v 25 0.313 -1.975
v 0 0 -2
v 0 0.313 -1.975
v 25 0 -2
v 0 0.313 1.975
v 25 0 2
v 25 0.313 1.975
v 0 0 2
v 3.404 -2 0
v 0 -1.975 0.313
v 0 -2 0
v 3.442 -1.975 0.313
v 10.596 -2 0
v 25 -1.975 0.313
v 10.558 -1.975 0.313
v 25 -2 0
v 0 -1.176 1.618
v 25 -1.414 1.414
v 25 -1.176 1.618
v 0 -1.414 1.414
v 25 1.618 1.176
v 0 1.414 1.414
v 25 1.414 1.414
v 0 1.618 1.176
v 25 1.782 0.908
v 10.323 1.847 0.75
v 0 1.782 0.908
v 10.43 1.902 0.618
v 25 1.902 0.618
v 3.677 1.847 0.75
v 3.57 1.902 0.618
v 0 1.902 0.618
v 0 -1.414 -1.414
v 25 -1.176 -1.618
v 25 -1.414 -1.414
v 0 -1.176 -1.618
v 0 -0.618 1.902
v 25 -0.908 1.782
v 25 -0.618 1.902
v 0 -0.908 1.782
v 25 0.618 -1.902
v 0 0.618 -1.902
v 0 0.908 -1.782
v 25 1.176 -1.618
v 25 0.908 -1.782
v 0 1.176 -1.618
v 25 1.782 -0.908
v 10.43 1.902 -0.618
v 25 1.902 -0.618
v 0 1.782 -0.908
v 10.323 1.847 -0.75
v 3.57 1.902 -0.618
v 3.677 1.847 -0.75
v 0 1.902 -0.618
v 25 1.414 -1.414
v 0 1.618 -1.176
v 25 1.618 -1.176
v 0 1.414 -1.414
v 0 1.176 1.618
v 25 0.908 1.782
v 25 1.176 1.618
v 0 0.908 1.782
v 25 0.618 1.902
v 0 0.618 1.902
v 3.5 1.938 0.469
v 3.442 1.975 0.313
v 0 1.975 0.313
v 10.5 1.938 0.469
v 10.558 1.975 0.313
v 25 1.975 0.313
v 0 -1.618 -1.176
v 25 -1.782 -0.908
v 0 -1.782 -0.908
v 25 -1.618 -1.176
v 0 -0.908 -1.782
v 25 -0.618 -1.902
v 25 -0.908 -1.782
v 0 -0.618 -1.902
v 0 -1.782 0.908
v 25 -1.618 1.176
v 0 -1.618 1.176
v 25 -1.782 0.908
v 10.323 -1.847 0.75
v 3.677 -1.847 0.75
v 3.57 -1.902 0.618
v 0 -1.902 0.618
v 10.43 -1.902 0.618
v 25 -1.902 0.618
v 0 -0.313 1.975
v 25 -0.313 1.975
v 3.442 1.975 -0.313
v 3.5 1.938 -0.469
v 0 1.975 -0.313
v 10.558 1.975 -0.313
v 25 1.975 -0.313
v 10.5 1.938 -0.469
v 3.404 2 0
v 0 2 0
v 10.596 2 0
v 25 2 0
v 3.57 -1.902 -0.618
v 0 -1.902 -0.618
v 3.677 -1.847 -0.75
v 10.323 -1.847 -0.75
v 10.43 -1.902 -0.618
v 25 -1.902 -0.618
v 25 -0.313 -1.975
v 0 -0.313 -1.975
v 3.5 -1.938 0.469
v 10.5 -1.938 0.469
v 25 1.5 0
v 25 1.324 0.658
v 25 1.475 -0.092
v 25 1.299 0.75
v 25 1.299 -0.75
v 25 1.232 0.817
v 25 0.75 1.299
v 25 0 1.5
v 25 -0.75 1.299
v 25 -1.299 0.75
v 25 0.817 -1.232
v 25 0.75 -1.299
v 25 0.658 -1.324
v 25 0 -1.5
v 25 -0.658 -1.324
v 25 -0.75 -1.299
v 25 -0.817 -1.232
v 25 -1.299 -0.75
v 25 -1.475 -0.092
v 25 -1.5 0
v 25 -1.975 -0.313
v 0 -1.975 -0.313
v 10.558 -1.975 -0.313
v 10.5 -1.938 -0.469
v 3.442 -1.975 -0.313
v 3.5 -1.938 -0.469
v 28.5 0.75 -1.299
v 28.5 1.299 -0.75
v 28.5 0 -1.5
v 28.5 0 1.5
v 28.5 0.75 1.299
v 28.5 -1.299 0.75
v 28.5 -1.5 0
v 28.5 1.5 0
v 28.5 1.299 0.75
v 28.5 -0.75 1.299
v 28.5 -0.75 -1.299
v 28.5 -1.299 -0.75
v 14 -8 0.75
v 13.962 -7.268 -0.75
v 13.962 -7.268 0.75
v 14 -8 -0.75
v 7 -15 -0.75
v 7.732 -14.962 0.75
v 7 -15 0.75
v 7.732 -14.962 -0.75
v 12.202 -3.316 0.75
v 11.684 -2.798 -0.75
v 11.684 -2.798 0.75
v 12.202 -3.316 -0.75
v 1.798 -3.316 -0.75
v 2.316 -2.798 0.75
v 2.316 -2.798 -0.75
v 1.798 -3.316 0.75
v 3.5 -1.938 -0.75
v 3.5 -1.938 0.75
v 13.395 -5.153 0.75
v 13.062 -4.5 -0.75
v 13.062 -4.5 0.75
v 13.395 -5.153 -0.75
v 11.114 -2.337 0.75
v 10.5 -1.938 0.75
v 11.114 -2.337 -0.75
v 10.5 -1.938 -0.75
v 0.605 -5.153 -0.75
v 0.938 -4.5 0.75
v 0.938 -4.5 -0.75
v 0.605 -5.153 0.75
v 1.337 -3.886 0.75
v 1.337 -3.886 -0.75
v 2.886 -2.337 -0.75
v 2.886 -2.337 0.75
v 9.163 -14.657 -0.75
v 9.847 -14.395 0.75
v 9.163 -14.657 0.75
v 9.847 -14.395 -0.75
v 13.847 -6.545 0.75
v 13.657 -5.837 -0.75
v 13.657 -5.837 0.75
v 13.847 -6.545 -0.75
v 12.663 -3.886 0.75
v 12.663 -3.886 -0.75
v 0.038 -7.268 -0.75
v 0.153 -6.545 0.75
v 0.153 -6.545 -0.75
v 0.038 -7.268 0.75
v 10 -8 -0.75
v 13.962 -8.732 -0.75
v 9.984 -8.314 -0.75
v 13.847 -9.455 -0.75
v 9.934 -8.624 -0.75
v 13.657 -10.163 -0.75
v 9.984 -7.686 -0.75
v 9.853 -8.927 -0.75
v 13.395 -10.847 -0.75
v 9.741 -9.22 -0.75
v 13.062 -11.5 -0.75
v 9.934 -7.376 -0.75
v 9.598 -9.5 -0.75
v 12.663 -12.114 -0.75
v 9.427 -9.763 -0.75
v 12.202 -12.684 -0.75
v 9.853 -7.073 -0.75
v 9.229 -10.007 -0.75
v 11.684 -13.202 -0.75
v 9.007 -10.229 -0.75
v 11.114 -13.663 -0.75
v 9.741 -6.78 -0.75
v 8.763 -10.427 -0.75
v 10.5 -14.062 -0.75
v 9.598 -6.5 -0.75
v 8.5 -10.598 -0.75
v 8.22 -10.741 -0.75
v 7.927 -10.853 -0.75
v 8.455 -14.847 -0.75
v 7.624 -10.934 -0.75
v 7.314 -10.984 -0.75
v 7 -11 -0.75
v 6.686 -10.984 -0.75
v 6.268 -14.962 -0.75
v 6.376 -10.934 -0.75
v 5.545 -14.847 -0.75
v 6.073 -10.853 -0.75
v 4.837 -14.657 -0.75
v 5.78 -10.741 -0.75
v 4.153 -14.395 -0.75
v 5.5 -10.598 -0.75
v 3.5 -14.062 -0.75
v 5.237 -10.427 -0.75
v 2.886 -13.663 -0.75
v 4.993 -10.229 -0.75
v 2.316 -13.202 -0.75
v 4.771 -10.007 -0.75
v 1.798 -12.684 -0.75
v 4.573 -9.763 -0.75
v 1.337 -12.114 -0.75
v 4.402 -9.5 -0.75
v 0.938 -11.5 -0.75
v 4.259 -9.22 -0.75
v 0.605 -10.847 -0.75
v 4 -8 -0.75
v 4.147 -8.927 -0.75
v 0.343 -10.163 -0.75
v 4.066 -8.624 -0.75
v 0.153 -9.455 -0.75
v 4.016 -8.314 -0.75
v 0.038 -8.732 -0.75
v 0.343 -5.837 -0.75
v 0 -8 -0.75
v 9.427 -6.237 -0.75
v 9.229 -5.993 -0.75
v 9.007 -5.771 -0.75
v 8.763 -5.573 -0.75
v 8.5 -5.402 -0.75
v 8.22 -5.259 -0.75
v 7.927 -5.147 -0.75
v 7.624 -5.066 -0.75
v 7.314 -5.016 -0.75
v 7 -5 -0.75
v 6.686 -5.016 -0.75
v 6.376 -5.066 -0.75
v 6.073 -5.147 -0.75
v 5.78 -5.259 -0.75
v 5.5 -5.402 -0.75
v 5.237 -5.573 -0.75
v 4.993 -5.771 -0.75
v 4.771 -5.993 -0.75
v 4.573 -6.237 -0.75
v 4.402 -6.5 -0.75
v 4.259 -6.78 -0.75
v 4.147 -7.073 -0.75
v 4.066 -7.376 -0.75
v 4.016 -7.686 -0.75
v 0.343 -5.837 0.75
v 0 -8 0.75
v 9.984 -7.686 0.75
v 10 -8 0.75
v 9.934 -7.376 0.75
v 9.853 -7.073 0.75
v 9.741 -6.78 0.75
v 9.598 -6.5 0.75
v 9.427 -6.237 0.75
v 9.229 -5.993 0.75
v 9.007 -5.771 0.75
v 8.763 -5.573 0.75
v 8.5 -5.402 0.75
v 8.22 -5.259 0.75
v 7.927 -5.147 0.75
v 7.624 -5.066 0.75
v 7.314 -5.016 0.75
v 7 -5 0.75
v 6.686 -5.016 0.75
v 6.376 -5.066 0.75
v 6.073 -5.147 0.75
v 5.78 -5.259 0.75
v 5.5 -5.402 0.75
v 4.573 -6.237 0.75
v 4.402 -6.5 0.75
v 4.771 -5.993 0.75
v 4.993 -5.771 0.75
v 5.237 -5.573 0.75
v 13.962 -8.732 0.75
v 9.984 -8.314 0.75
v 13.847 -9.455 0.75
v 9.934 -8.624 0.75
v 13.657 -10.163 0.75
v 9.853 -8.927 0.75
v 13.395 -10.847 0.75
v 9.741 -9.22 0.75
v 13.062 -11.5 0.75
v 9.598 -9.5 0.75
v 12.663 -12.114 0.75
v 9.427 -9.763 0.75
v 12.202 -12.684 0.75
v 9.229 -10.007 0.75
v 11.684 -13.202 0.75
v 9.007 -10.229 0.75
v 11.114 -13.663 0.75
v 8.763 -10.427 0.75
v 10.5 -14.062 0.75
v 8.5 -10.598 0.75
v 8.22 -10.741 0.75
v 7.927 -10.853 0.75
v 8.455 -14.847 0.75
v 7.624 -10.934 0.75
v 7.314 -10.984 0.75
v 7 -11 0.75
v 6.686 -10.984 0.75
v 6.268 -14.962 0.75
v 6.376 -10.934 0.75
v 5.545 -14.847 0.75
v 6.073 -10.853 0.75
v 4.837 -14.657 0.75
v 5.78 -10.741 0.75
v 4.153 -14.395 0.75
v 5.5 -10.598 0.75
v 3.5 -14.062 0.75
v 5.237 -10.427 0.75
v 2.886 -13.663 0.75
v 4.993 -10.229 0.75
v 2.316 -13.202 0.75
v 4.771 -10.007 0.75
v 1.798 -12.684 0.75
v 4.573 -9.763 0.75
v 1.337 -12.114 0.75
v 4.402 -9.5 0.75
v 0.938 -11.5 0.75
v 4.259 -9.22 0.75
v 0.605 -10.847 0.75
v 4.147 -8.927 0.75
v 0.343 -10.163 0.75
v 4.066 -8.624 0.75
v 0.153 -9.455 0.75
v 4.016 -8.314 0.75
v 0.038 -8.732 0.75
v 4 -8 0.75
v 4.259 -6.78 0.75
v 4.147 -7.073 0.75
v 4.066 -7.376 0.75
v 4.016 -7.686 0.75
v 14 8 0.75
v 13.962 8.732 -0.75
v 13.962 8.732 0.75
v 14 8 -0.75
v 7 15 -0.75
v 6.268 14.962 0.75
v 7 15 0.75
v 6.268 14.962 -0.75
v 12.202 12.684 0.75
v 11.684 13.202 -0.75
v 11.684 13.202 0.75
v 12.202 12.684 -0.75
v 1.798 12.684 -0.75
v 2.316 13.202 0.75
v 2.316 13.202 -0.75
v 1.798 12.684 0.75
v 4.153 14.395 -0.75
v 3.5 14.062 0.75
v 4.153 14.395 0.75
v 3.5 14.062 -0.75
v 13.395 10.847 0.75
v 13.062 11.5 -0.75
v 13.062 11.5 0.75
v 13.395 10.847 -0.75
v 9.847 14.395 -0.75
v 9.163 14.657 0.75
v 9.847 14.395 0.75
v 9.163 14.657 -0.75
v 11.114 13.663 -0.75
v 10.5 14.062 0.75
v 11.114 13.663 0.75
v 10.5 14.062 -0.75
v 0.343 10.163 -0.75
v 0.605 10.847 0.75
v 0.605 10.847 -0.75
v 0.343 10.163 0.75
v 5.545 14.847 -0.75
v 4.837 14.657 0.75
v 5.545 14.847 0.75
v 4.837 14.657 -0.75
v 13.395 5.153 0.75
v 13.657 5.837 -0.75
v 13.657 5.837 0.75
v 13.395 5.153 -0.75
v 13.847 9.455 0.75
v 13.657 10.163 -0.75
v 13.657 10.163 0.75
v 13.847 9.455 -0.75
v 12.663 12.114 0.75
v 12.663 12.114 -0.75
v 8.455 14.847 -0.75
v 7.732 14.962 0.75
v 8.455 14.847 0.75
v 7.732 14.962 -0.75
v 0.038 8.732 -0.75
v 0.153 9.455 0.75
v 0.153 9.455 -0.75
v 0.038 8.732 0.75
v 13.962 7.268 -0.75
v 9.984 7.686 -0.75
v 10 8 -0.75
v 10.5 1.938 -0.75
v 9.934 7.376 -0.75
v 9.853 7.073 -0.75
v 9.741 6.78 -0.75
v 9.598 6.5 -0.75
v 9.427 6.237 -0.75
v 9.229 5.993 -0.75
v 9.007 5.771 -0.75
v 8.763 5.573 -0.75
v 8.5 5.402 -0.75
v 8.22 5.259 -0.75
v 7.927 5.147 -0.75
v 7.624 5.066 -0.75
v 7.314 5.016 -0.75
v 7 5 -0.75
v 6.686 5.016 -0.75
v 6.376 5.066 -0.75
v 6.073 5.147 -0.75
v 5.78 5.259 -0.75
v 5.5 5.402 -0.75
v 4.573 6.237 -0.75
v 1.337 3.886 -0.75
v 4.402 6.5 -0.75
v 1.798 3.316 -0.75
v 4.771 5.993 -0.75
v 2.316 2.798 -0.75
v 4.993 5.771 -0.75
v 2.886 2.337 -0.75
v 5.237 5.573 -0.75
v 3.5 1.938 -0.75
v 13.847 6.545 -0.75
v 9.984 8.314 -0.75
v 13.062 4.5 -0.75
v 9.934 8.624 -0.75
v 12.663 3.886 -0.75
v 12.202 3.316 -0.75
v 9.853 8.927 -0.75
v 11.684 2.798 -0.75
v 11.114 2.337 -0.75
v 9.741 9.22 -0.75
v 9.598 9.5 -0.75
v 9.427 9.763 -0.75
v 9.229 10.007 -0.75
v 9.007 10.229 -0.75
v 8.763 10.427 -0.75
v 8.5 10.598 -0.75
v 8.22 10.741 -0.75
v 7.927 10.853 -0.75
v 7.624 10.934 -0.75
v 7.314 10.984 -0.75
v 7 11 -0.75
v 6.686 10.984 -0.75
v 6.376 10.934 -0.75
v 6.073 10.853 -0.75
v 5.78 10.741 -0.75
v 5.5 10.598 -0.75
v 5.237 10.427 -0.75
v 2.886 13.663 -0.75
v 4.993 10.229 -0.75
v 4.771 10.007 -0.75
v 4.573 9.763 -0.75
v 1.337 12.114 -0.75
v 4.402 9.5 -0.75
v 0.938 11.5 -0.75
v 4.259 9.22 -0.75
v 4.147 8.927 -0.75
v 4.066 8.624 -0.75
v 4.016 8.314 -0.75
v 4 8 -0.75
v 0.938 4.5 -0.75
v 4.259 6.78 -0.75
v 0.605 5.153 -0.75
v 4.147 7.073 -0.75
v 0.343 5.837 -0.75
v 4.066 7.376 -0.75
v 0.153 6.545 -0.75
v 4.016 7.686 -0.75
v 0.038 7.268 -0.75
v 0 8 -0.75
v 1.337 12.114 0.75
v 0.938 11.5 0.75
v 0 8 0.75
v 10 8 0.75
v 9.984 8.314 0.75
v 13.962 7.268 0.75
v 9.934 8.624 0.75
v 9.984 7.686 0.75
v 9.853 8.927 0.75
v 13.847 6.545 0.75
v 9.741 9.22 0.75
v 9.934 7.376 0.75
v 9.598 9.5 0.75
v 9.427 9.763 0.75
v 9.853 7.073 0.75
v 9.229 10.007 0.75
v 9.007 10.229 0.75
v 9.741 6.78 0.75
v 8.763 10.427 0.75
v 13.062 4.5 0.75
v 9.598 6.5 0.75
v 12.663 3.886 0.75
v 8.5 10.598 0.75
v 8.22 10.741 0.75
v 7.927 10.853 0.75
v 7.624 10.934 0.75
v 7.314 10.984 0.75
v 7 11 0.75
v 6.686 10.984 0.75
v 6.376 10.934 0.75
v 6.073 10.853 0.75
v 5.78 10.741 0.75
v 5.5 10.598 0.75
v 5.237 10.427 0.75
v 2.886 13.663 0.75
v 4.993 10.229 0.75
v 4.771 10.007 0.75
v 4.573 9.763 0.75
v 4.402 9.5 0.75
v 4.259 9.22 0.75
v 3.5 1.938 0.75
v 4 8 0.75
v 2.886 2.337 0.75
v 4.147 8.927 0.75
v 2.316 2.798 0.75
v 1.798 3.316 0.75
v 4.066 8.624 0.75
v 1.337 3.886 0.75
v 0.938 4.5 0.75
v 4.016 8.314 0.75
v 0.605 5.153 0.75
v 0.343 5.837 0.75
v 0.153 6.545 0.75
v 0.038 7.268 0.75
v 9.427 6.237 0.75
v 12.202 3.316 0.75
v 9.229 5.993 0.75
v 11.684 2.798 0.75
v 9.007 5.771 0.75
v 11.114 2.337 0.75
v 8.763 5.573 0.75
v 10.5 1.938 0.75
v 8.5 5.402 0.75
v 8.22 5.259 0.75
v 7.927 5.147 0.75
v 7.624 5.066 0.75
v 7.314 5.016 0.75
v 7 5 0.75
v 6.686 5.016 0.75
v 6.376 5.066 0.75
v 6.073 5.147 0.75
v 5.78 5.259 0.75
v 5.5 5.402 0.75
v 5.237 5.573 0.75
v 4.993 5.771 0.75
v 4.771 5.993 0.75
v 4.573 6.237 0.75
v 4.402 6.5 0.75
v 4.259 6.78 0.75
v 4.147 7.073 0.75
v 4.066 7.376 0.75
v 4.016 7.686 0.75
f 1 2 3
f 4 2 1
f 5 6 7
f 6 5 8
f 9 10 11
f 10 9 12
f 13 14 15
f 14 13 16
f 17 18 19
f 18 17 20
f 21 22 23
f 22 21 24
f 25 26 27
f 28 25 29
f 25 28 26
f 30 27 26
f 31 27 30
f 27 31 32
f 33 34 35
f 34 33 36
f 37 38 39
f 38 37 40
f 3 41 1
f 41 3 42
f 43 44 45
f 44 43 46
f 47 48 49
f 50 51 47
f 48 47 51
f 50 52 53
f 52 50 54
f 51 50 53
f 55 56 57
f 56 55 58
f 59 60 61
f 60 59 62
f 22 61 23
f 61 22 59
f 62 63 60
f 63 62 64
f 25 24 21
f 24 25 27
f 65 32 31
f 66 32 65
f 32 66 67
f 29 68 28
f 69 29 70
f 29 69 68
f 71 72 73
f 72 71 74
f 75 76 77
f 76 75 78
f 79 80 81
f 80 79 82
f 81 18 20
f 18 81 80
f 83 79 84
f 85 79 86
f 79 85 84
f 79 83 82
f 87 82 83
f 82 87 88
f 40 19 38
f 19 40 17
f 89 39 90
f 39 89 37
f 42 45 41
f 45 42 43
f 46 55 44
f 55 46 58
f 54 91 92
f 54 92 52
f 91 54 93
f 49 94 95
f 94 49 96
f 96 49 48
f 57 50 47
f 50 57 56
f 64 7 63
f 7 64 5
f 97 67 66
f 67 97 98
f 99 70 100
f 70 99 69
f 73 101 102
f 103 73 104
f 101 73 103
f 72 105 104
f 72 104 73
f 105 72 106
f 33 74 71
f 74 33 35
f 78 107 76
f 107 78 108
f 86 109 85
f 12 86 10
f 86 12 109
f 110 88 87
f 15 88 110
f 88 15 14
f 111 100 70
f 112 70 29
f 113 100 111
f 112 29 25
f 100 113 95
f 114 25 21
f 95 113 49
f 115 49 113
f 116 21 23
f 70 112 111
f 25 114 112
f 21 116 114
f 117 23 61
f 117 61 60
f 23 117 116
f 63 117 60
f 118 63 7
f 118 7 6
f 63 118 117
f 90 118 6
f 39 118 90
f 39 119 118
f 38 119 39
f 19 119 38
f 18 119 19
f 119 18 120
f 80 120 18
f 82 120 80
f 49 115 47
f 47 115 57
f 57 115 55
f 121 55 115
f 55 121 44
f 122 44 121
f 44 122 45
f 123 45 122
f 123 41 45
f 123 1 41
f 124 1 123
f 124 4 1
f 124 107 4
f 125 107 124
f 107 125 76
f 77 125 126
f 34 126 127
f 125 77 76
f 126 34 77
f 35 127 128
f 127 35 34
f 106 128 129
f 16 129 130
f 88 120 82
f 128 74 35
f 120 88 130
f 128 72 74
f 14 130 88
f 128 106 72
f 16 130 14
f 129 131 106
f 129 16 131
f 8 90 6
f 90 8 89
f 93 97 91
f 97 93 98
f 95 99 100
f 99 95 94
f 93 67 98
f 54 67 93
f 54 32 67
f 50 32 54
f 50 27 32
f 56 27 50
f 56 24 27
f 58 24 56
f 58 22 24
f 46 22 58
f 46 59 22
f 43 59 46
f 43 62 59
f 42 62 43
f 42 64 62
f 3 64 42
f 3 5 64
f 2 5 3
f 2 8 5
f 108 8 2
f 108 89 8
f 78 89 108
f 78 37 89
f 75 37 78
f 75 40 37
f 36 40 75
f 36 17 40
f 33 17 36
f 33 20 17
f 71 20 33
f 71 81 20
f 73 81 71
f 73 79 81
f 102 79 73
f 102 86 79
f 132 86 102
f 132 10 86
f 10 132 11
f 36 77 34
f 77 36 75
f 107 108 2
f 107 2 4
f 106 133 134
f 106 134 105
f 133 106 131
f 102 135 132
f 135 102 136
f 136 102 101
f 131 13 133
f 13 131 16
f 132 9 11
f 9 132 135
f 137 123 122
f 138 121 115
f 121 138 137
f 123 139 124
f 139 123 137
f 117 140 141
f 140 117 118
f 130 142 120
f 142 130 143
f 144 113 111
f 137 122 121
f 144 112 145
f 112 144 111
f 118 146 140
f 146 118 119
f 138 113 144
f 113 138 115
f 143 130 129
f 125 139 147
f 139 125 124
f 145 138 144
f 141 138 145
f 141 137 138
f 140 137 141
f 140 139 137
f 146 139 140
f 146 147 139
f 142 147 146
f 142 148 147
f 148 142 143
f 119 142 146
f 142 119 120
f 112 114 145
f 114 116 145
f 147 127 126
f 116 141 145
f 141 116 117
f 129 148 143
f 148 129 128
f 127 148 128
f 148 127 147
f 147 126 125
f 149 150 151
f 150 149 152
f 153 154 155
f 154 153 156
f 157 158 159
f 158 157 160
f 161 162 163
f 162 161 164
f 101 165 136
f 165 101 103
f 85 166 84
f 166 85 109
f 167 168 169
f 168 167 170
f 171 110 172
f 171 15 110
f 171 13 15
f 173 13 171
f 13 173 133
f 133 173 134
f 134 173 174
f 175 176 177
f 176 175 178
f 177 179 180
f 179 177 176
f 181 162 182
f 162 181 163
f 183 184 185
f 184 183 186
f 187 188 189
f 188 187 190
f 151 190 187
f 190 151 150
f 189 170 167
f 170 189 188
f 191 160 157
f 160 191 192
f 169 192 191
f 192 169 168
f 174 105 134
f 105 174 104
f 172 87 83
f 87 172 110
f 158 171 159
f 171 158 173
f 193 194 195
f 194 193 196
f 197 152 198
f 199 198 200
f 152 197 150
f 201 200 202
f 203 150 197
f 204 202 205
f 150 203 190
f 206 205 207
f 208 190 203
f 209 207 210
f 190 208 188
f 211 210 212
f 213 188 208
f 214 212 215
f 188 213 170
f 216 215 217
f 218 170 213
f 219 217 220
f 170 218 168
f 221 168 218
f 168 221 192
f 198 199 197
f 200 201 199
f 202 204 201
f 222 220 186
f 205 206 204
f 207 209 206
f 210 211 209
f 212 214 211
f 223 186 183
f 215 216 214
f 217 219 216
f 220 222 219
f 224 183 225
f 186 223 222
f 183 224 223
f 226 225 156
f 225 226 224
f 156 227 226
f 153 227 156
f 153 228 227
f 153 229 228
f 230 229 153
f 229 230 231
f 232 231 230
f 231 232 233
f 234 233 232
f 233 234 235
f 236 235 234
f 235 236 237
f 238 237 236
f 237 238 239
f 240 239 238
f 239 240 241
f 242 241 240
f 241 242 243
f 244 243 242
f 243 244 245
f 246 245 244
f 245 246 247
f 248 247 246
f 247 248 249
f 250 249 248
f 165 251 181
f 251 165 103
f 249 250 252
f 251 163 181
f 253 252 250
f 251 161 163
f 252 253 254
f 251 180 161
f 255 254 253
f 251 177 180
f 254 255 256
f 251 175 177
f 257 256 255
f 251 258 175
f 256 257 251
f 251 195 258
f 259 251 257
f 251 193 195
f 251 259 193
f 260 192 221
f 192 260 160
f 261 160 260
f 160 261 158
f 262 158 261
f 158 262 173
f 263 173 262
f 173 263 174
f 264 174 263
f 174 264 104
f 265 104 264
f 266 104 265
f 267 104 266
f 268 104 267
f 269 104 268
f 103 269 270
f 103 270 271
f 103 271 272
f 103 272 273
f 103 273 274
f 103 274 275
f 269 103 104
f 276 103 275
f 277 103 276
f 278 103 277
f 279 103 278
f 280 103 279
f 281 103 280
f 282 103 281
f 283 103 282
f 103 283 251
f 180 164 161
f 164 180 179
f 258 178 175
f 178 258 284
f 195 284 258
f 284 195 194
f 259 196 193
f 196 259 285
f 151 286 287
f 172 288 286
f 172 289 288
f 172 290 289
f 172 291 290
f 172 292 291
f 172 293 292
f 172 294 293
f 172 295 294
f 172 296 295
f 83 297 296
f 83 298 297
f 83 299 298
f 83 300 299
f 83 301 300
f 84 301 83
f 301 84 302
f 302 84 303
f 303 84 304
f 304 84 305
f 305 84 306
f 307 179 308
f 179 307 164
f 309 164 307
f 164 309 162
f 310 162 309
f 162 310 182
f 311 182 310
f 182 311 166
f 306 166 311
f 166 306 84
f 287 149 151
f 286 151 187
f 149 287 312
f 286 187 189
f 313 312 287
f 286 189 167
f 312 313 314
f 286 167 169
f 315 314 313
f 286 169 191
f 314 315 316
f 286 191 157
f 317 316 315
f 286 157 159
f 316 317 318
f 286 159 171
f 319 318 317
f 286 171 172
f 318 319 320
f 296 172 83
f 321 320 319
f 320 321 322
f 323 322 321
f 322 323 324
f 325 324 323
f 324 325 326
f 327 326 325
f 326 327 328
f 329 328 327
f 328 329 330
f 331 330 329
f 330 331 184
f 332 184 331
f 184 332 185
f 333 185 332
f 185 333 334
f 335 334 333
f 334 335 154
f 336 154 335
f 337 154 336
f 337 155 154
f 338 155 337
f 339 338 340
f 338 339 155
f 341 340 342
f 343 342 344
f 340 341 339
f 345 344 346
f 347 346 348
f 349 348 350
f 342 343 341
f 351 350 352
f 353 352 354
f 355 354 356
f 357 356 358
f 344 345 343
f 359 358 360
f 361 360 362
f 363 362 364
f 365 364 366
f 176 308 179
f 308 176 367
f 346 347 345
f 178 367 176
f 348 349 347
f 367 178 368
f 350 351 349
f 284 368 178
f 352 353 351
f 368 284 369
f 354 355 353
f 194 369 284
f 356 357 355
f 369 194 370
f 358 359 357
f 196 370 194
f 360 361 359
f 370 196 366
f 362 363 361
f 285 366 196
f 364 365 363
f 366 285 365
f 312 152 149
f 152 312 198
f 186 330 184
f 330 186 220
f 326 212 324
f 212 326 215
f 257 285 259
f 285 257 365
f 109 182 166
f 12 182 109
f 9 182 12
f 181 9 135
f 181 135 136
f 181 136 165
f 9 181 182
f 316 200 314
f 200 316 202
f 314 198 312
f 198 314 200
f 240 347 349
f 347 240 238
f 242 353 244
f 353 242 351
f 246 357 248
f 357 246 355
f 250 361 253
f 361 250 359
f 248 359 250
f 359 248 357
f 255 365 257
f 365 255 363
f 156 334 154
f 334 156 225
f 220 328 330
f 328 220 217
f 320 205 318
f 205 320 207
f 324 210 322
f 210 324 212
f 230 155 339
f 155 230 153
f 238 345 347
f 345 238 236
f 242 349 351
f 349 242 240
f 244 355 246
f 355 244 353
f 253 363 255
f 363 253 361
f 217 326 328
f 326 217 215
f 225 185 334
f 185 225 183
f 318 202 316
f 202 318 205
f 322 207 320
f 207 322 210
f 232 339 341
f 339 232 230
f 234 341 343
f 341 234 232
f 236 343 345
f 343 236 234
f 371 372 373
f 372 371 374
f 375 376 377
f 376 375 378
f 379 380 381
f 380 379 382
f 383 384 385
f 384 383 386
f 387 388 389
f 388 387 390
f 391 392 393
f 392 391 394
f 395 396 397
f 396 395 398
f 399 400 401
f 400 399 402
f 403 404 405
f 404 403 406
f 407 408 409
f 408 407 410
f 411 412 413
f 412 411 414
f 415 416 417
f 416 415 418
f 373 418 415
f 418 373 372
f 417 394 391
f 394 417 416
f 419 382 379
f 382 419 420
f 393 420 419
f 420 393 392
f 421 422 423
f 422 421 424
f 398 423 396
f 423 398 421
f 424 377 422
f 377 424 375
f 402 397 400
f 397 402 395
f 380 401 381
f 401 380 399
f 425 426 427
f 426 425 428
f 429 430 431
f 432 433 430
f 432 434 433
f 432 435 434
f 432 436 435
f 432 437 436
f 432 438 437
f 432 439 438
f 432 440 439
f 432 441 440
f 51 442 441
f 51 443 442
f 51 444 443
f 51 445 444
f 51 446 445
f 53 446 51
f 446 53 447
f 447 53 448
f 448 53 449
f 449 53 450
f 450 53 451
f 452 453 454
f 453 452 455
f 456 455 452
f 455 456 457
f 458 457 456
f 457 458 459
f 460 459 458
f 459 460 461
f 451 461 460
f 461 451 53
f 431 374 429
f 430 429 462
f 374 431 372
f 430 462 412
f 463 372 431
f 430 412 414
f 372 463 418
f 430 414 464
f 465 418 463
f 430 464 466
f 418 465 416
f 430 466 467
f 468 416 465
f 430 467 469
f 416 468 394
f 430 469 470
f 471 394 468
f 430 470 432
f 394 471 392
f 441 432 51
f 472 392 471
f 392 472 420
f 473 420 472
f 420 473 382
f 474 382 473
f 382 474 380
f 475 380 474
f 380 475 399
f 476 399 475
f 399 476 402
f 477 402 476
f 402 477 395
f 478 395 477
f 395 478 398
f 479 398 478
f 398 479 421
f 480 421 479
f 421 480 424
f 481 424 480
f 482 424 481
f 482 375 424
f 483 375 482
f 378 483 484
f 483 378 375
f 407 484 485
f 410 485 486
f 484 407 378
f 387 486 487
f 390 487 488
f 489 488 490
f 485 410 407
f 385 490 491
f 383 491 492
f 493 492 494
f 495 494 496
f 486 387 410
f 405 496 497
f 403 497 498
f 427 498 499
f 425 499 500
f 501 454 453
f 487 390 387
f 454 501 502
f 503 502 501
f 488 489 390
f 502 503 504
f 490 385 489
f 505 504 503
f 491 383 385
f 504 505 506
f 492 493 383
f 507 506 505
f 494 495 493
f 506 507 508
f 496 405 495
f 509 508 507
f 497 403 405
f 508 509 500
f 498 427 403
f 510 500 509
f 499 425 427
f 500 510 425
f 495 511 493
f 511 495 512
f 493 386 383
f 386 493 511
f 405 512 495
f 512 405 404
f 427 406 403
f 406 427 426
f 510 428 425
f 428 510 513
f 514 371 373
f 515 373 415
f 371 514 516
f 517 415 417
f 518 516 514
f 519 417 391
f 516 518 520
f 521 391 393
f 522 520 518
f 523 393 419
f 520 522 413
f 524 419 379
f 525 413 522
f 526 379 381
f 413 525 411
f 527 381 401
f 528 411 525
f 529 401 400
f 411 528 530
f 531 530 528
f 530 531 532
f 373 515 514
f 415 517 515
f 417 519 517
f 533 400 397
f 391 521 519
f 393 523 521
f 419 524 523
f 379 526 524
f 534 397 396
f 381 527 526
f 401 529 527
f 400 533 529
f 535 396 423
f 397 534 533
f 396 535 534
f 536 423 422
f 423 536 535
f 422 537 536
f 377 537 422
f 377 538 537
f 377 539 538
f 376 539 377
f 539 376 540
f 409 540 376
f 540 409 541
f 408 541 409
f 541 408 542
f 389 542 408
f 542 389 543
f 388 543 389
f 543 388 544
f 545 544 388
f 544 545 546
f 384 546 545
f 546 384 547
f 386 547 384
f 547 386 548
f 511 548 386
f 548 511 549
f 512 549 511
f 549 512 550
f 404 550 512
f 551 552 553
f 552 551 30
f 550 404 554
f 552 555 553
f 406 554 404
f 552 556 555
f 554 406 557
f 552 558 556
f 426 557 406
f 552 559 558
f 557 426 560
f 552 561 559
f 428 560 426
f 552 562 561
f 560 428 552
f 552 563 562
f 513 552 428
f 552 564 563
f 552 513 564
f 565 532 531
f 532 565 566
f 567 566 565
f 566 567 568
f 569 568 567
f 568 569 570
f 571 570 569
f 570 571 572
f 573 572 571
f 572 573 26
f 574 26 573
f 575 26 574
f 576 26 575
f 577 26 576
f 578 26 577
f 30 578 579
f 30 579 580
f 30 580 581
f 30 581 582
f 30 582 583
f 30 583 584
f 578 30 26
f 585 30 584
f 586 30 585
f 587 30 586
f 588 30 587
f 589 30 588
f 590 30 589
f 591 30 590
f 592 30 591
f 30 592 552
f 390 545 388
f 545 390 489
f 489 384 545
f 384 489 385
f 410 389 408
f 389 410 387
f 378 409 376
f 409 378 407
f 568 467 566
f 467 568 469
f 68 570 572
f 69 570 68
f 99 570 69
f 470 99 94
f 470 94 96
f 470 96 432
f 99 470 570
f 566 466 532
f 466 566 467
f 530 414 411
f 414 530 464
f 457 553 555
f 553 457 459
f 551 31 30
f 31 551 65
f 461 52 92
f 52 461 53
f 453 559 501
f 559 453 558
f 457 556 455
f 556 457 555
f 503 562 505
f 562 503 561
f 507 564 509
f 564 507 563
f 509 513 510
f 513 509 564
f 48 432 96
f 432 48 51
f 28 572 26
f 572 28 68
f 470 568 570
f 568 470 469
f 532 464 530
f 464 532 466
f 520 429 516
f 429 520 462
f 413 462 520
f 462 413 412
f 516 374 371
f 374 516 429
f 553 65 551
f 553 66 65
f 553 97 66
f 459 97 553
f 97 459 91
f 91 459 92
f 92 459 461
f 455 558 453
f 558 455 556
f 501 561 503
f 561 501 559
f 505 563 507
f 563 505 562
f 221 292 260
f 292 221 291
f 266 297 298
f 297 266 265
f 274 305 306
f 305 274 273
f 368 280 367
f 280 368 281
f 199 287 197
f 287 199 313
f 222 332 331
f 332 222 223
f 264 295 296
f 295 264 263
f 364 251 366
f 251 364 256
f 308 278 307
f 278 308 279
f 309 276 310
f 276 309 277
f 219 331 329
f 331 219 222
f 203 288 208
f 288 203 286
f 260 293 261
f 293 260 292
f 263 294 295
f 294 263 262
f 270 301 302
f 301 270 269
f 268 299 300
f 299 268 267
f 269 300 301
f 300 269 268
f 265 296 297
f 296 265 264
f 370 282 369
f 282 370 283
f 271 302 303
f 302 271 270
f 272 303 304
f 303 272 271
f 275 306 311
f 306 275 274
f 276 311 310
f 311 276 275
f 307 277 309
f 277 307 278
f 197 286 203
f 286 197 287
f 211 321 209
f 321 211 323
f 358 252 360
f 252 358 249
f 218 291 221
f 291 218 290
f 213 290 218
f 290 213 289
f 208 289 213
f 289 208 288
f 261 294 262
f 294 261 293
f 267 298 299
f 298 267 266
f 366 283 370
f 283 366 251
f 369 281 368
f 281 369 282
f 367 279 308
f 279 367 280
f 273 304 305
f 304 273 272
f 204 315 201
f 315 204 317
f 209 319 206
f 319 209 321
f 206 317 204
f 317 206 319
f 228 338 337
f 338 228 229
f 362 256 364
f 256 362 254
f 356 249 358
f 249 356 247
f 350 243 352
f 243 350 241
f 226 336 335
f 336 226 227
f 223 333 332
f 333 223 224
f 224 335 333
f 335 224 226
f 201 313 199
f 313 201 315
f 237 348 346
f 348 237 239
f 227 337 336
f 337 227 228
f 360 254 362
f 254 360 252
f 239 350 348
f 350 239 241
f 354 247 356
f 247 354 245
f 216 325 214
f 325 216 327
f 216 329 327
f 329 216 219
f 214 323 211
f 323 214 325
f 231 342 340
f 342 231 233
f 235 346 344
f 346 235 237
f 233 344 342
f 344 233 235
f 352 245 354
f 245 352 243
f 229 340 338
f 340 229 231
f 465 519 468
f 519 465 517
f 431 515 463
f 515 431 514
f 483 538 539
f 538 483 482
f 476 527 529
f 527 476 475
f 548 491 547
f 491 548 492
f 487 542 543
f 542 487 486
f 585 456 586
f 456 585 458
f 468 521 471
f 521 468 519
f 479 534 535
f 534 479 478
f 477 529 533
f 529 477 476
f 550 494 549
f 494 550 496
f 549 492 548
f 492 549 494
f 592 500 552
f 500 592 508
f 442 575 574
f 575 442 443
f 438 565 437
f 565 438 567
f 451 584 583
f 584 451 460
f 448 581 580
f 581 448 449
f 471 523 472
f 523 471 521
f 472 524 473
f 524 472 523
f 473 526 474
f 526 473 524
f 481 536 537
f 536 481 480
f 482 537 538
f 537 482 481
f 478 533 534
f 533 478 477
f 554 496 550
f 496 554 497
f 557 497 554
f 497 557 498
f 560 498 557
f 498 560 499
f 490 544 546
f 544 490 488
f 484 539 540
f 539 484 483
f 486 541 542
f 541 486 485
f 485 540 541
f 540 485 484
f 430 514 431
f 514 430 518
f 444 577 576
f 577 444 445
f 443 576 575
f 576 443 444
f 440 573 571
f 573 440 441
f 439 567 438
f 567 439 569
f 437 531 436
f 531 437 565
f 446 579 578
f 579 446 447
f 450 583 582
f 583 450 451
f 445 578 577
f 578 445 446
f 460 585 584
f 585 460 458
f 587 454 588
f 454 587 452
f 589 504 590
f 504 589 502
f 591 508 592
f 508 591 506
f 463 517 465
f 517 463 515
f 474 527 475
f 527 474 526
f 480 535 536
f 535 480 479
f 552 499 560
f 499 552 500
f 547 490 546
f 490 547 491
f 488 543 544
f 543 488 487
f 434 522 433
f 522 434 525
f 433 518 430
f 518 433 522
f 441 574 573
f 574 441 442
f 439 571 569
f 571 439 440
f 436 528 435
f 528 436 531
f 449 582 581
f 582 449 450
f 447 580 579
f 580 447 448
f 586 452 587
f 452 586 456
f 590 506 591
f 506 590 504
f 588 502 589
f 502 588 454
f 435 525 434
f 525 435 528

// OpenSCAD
a = 2;//stick radius
b = 1.5;//joint radius
c = 1.5;//handle thickness
d = 7;//handle radius
e = 60;//handle polygon
f = 3;//handle hole radius
x =7;//handle x
y =8;//handle y
z =c/2;//handle z

module target(){
    union(){
        rotate([0,90,0])
            cylinder(h = 25, r = a, $fn = 40);//stick
        rotate([0,90,0])
            cylinder(h = 28.5, r = b, $fn = 12);//3mm joint
        
//R_handle
        translate([x,-y,-z]){
            cylinder(h = c, r = d, $fn = e);
            }
      
//L_handle
        translate([x,y,-z]){
            cylinder(h = c, r = d, $fn = e);
        }
    
    }
}

module tool(){
//R_hole
     translate([x,-y,-z]){
          cylinder(h = c, r = f, $fn = e);
            }

//L_hole
     translate([x,y,-z]){
          cylinder(h = c, r = f, $fn =e);
            }
        }
        
difference(){
    target();
    tool();
    }
